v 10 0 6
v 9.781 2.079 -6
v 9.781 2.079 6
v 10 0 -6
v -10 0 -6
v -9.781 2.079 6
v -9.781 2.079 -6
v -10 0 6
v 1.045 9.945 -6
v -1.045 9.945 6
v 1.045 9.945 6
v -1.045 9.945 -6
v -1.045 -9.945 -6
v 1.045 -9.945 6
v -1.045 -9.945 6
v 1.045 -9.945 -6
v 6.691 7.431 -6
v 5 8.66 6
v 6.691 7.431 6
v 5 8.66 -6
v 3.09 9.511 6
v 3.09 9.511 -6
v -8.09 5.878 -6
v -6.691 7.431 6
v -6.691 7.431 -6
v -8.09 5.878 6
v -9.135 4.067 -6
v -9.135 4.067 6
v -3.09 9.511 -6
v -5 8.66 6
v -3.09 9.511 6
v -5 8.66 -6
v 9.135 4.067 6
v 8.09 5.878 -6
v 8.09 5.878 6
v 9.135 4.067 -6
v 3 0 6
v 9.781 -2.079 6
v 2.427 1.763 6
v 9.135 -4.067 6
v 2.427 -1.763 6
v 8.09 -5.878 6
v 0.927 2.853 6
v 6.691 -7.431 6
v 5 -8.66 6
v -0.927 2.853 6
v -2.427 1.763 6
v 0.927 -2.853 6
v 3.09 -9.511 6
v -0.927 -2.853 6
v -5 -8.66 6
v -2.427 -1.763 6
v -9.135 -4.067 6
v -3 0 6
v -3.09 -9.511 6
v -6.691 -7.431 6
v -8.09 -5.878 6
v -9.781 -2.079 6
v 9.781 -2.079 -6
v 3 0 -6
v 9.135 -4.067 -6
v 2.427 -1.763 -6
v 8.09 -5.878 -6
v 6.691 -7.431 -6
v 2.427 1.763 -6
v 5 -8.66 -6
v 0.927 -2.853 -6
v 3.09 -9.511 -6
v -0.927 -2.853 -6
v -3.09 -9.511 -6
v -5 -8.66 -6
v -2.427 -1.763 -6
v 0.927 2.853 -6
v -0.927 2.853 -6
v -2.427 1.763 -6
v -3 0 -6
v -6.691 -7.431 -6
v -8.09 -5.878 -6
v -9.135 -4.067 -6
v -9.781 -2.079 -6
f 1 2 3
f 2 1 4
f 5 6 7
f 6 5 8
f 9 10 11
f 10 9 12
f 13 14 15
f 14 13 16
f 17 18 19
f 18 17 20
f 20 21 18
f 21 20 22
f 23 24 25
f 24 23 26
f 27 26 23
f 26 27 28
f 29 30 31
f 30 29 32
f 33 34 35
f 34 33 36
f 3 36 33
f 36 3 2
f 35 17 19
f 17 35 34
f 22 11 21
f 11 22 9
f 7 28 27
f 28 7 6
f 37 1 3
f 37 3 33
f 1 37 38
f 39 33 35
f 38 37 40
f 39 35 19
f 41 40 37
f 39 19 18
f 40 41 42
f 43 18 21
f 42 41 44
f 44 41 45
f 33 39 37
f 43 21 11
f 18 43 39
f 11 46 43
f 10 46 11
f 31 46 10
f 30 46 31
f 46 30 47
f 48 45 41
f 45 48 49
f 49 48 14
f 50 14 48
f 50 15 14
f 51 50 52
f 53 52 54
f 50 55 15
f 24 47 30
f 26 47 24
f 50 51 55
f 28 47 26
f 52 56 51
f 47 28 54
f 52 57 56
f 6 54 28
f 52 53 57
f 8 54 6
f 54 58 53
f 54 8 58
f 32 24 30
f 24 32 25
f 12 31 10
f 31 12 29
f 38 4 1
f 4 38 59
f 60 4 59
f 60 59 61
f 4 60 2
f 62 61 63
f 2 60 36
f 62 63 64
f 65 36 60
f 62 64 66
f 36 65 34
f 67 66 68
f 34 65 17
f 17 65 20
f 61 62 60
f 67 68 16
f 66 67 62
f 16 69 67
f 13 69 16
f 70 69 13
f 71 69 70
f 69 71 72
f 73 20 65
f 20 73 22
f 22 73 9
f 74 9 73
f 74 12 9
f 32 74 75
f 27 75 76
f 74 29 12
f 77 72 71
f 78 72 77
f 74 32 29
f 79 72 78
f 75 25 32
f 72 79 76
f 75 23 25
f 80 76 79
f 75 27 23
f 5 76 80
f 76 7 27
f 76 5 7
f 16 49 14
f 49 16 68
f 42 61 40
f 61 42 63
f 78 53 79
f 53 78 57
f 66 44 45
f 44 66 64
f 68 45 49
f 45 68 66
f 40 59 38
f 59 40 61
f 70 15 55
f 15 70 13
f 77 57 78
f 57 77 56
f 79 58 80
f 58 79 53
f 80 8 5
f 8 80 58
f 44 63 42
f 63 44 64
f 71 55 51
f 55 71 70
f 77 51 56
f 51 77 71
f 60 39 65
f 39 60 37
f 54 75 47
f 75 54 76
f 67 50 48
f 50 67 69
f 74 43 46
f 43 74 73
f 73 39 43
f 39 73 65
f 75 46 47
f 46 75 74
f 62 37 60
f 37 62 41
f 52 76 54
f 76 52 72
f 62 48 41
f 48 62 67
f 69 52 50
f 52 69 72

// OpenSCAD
difference() {
    cylinder(h = 12, d = 20, center = true);
    cylinder(h = 12, d = 6, center = true);
}
